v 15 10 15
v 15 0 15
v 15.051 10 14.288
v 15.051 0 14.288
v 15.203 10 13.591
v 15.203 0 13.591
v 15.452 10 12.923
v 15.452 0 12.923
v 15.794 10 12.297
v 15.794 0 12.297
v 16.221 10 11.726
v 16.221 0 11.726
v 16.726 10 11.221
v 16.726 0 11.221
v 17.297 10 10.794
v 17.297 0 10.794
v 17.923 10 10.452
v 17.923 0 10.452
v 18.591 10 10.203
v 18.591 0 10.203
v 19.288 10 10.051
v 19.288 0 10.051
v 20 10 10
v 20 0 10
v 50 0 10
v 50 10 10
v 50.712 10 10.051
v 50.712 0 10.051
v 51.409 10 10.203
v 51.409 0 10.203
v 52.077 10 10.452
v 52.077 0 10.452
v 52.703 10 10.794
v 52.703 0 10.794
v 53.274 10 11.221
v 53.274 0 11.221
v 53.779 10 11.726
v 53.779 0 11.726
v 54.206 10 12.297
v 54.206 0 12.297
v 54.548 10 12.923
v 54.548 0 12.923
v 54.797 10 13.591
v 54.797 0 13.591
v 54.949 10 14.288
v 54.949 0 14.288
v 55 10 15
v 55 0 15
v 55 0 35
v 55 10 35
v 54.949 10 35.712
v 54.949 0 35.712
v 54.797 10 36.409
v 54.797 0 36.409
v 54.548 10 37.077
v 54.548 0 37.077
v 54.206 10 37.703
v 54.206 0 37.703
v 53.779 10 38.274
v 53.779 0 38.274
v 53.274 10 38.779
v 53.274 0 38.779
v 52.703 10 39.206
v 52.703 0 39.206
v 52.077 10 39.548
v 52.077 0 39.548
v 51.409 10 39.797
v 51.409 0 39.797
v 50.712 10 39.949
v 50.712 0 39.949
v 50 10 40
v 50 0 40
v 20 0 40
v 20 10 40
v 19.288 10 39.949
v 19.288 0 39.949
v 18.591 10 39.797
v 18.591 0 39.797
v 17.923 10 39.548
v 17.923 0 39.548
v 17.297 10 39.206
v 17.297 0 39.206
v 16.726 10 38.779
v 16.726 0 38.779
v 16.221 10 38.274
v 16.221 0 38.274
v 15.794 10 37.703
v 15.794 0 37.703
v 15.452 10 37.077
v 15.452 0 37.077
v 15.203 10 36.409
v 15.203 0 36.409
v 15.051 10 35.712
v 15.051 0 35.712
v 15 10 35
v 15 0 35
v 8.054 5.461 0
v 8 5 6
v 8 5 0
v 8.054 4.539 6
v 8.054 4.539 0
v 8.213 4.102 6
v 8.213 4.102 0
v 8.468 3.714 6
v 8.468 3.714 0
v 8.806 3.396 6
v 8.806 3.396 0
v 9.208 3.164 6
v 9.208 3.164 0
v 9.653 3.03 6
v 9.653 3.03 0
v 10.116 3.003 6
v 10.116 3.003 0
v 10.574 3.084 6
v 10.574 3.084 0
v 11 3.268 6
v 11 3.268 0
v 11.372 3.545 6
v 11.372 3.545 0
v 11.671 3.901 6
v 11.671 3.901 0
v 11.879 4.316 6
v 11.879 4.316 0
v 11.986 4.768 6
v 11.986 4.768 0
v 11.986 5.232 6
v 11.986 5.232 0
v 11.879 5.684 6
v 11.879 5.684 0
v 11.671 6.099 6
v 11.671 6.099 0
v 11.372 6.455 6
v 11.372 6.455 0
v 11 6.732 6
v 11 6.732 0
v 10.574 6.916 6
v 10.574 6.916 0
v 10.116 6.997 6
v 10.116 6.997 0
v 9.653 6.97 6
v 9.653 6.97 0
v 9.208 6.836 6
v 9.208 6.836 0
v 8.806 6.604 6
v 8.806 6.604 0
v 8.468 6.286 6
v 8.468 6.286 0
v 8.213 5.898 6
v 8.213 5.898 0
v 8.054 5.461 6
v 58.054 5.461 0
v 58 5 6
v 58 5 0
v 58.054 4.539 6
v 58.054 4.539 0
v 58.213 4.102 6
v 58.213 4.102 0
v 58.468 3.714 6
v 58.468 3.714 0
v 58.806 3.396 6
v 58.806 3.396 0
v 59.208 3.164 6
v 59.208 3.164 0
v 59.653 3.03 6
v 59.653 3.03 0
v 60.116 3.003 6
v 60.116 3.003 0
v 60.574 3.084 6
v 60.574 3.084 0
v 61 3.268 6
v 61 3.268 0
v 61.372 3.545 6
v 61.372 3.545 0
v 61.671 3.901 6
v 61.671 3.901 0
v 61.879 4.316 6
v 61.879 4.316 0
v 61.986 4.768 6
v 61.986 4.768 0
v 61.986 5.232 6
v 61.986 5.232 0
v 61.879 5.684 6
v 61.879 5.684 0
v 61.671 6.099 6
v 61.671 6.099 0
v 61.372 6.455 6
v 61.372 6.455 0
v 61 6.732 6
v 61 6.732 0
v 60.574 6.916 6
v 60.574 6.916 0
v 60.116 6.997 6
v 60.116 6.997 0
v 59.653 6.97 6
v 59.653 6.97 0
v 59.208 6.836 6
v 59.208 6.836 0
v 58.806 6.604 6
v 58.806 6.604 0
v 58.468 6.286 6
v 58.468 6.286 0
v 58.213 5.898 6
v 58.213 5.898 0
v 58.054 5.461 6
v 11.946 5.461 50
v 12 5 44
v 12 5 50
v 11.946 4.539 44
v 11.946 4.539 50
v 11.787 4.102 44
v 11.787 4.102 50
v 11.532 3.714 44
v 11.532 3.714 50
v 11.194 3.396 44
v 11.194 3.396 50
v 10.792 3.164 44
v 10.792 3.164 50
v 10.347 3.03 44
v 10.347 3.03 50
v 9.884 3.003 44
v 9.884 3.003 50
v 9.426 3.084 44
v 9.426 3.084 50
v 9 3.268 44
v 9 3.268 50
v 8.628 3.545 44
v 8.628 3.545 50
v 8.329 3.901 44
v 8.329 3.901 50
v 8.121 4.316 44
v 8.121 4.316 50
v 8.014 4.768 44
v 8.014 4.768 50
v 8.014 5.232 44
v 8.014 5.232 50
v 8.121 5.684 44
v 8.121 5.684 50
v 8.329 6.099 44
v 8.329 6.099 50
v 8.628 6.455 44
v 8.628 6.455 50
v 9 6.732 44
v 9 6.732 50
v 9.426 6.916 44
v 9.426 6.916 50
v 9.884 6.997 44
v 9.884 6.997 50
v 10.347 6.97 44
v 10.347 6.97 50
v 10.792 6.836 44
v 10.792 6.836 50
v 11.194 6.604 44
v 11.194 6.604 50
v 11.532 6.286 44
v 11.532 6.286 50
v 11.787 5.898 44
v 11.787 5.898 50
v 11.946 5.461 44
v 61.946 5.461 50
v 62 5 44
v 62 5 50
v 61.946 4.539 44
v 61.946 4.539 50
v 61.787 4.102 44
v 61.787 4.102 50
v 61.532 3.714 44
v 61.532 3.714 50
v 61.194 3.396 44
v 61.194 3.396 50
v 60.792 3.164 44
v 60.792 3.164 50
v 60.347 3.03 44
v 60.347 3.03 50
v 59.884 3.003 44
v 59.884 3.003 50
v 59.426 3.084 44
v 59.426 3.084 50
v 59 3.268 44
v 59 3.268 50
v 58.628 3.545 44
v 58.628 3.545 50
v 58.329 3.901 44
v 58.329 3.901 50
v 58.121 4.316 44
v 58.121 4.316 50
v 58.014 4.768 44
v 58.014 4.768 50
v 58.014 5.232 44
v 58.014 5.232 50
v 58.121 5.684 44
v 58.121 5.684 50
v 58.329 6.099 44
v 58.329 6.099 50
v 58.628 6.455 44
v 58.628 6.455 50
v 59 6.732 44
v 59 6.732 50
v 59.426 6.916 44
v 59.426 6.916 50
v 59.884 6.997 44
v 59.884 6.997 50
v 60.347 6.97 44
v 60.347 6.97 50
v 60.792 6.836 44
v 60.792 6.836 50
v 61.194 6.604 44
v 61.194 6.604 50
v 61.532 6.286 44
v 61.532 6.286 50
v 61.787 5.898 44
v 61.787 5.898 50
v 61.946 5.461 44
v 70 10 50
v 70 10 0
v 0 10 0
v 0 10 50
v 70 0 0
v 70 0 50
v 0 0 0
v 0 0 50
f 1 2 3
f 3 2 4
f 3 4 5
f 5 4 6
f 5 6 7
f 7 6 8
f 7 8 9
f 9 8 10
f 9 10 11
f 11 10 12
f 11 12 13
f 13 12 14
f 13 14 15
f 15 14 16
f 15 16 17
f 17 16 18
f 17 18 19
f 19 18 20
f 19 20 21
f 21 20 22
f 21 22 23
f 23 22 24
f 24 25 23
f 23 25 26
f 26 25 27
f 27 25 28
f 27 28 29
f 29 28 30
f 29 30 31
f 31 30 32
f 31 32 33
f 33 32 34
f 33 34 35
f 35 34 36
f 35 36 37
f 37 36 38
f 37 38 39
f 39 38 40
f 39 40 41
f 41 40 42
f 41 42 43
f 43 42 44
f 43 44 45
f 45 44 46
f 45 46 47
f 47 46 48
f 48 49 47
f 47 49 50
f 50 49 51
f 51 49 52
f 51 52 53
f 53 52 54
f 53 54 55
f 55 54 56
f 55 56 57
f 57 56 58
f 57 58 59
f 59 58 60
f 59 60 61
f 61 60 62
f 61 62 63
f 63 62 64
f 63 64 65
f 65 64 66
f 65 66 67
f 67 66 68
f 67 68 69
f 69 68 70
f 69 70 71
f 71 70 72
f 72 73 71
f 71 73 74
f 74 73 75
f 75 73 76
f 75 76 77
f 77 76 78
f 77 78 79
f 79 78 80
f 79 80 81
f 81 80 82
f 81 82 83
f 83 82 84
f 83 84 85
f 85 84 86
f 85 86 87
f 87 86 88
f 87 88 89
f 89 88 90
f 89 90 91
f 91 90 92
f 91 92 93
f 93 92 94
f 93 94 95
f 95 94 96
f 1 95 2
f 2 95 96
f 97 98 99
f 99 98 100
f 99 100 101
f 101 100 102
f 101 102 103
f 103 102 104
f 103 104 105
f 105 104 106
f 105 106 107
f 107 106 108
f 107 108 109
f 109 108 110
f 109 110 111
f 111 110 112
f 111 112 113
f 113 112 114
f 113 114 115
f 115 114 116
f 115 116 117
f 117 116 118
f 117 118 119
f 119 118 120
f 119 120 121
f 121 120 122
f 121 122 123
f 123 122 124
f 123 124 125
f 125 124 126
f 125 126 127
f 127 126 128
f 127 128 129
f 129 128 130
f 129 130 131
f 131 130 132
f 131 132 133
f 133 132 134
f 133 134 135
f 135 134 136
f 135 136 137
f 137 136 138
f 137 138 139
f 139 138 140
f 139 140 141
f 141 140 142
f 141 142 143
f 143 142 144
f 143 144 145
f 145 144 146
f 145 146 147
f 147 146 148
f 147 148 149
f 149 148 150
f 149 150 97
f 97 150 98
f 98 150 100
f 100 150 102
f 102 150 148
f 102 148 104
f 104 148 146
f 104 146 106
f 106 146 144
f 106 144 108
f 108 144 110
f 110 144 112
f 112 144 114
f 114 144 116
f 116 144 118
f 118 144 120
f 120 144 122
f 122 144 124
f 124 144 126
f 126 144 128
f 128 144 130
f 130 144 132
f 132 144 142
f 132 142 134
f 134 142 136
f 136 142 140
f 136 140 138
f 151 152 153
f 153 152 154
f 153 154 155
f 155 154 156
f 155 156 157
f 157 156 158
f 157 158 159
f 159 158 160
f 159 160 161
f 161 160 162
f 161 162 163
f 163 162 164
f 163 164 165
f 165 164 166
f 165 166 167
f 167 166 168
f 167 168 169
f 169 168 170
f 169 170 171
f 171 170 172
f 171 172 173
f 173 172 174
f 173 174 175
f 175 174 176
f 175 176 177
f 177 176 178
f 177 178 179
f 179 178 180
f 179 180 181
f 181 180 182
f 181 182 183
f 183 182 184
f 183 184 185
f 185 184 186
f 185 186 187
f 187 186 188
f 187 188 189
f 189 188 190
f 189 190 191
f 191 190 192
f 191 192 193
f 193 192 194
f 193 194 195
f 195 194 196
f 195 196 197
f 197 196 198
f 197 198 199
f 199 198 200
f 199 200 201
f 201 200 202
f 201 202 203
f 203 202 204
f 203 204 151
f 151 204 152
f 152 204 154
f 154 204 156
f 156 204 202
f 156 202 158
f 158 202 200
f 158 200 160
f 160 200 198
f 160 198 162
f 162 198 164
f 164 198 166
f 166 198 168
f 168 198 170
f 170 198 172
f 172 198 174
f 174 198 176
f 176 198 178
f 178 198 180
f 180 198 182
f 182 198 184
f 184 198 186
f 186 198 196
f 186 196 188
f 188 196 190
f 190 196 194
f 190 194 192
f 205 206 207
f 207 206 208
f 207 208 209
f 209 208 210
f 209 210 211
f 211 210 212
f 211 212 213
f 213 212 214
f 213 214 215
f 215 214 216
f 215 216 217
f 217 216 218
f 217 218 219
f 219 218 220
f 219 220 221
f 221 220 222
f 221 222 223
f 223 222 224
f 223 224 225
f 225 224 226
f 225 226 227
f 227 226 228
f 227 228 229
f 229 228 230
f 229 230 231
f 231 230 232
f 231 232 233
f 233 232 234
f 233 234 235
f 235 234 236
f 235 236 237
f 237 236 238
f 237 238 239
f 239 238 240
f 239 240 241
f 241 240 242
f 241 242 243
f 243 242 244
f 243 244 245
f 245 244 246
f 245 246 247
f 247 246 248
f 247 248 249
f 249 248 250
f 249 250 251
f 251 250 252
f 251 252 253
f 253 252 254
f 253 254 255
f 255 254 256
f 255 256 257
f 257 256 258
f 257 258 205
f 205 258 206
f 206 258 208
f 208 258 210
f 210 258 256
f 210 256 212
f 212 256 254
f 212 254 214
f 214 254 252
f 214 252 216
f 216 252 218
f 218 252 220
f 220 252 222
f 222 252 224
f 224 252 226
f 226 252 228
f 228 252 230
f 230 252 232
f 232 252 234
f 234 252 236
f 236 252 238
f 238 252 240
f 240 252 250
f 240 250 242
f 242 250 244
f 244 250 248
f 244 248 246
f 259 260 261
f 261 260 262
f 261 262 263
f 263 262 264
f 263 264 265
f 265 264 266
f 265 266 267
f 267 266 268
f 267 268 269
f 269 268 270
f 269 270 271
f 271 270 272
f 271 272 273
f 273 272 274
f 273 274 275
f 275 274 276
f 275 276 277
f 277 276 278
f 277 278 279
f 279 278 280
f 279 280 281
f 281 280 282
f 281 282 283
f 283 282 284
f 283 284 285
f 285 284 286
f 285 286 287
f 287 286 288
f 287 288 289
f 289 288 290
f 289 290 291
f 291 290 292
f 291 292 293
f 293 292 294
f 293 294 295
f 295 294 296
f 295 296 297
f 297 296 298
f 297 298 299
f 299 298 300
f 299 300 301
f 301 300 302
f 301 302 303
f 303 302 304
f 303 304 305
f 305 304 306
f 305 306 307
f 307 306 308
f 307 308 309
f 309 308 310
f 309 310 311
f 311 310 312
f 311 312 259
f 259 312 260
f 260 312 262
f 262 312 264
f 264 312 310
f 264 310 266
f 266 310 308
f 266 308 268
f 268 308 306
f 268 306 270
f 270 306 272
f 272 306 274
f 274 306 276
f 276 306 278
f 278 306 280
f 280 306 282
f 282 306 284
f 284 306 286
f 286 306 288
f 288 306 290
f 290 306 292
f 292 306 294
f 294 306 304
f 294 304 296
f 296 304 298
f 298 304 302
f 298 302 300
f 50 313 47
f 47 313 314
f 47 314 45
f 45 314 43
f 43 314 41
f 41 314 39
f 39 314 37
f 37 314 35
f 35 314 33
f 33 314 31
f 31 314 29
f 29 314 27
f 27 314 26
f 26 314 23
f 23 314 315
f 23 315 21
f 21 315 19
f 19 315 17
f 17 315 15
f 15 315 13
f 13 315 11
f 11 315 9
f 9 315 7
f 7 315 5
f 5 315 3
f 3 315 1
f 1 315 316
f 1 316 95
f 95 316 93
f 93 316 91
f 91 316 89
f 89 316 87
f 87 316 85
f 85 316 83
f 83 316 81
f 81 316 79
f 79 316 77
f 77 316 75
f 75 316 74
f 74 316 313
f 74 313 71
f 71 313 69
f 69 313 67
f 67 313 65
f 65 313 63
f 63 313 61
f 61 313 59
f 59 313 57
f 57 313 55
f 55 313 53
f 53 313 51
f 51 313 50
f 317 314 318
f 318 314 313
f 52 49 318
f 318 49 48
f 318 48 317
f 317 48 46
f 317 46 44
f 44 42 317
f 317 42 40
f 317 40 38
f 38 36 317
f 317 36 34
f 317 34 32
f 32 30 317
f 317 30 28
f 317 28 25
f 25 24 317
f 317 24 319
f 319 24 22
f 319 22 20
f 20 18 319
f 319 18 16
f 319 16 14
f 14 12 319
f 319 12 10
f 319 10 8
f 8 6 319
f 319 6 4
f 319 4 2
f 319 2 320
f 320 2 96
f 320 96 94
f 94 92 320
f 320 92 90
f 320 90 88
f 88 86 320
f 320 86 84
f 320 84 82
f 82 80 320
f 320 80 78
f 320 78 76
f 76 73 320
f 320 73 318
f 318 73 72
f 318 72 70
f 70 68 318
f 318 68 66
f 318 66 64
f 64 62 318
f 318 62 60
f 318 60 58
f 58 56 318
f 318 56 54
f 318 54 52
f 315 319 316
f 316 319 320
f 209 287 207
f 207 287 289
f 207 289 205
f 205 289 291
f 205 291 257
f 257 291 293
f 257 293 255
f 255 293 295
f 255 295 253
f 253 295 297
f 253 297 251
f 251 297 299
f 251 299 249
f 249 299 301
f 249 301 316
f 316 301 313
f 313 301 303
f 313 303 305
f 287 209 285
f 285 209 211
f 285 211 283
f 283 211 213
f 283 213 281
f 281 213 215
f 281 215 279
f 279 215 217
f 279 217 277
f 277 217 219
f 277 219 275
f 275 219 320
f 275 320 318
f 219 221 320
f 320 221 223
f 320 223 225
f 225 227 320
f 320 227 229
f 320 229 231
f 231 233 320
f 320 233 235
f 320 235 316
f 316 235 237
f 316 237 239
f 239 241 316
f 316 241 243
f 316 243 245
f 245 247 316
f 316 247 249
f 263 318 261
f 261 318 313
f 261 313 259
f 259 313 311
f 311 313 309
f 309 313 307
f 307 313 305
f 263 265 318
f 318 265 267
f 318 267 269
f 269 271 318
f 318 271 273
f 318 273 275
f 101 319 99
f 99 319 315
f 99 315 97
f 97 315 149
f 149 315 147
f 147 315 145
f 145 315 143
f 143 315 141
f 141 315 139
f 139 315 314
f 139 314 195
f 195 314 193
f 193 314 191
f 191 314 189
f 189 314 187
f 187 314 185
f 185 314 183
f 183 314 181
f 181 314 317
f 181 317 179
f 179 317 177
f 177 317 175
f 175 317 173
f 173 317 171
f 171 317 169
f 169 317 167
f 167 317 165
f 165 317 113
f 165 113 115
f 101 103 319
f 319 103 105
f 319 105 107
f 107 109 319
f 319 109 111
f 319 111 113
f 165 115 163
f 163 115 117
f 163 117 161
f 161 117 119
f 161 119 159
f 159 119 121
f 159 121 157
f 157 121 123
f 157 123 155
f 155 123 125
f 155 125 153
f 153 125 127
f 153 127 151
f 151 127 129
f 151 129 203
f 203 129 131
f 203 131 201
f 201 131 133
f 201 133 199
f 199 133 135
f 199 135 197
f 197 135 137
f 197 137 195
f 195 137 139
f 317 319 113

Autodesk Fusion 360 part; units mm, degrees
sketch "Sketch1" plane through (0, 0, 0) normal (0, 0, 1) x (1, 0, 0)
  line L0 (0, 0) -> (70, 0)
  line L1 (70, 0) -> (70, 10)
  line L2 (70, 10) -> (0, 10)
  line L3 (0, 10) -> (0, 0)
  line L4 (0, 5) -> (70, 5) construction
  point P0 (10, 5)
  point P1 (60, 5)
  dimension "d1" = 70
  dimension "d2" = 10
  dimension "d9" = 50
  dimension "d10" = 10
extrude "Extrude1" add sketch "Sketch1" along normal blind 50
sketch "Sketch2" plane through (0, 0, 50) normal (0, 0, 1) x (-1, 0, 0)
  line L0 (0, -10) -> (0, 0)
  line L1 (0, 0) -> (-70, 0)
  line L2 (-70, 0) -> (-70, -10)
  line L3 (-70, -10) -> (0, -10)
  line L4 (0, -5) -> (-70, -5) construction
  line L5 (0, -10) -> (0, 0)
  point P0 (-10, -5)
  point P1 (-60, -5)
  dimension "d11" = 50
  dimension "d12" = 10
hole "Hole1" at (10, 5, 50) at (60, 5, 50) direction (0, 0, -1) diameter 4 depth 6 tip angle 180
hole "Hole2" at (10, 5, 0) at (60, 5, 0) direction (0, 0, 1) diameter 4 depth 6 tip angle 180
sketch "Sketch3" plane through (0, 0, 0) normal (0, -1, 0) x (1, 0, 0)
  line L0 (0, 0) -> (70, 0)
  line L1 (70, 0) -> (70, 50)
  line L2 (70, 50) -> (0, 50)
  line L3 (0, 50) -> (0, 0)
  line L4 (15, 40) -> (55, 40)
  line L5 (55, 40) -> (55, 10)
  line L6 (55, 10) -> (15, 10)
  line L7 (15, 10) -> (15, 40)
  line L8 (0, 0) -> (70, 0)
  dimension "d19" = 15
  dimension "d20" = 10
  dimension "d21" = 10
  dimension "d22" = 15
extrude "Extrude2" cut sketch "Sketch3" against normal blind 33 contours L4 L5 L6 L7
fillet "Fillet1" radius 5 4 edges at (15, 5, 40) (55, 5, 40) (55, 5, 10) (15, 5, 10)
equation "d10 = ( 70 mm - d9 ) / 2"
equation "d12 = ( 70 mm - d11 ) / 2"
